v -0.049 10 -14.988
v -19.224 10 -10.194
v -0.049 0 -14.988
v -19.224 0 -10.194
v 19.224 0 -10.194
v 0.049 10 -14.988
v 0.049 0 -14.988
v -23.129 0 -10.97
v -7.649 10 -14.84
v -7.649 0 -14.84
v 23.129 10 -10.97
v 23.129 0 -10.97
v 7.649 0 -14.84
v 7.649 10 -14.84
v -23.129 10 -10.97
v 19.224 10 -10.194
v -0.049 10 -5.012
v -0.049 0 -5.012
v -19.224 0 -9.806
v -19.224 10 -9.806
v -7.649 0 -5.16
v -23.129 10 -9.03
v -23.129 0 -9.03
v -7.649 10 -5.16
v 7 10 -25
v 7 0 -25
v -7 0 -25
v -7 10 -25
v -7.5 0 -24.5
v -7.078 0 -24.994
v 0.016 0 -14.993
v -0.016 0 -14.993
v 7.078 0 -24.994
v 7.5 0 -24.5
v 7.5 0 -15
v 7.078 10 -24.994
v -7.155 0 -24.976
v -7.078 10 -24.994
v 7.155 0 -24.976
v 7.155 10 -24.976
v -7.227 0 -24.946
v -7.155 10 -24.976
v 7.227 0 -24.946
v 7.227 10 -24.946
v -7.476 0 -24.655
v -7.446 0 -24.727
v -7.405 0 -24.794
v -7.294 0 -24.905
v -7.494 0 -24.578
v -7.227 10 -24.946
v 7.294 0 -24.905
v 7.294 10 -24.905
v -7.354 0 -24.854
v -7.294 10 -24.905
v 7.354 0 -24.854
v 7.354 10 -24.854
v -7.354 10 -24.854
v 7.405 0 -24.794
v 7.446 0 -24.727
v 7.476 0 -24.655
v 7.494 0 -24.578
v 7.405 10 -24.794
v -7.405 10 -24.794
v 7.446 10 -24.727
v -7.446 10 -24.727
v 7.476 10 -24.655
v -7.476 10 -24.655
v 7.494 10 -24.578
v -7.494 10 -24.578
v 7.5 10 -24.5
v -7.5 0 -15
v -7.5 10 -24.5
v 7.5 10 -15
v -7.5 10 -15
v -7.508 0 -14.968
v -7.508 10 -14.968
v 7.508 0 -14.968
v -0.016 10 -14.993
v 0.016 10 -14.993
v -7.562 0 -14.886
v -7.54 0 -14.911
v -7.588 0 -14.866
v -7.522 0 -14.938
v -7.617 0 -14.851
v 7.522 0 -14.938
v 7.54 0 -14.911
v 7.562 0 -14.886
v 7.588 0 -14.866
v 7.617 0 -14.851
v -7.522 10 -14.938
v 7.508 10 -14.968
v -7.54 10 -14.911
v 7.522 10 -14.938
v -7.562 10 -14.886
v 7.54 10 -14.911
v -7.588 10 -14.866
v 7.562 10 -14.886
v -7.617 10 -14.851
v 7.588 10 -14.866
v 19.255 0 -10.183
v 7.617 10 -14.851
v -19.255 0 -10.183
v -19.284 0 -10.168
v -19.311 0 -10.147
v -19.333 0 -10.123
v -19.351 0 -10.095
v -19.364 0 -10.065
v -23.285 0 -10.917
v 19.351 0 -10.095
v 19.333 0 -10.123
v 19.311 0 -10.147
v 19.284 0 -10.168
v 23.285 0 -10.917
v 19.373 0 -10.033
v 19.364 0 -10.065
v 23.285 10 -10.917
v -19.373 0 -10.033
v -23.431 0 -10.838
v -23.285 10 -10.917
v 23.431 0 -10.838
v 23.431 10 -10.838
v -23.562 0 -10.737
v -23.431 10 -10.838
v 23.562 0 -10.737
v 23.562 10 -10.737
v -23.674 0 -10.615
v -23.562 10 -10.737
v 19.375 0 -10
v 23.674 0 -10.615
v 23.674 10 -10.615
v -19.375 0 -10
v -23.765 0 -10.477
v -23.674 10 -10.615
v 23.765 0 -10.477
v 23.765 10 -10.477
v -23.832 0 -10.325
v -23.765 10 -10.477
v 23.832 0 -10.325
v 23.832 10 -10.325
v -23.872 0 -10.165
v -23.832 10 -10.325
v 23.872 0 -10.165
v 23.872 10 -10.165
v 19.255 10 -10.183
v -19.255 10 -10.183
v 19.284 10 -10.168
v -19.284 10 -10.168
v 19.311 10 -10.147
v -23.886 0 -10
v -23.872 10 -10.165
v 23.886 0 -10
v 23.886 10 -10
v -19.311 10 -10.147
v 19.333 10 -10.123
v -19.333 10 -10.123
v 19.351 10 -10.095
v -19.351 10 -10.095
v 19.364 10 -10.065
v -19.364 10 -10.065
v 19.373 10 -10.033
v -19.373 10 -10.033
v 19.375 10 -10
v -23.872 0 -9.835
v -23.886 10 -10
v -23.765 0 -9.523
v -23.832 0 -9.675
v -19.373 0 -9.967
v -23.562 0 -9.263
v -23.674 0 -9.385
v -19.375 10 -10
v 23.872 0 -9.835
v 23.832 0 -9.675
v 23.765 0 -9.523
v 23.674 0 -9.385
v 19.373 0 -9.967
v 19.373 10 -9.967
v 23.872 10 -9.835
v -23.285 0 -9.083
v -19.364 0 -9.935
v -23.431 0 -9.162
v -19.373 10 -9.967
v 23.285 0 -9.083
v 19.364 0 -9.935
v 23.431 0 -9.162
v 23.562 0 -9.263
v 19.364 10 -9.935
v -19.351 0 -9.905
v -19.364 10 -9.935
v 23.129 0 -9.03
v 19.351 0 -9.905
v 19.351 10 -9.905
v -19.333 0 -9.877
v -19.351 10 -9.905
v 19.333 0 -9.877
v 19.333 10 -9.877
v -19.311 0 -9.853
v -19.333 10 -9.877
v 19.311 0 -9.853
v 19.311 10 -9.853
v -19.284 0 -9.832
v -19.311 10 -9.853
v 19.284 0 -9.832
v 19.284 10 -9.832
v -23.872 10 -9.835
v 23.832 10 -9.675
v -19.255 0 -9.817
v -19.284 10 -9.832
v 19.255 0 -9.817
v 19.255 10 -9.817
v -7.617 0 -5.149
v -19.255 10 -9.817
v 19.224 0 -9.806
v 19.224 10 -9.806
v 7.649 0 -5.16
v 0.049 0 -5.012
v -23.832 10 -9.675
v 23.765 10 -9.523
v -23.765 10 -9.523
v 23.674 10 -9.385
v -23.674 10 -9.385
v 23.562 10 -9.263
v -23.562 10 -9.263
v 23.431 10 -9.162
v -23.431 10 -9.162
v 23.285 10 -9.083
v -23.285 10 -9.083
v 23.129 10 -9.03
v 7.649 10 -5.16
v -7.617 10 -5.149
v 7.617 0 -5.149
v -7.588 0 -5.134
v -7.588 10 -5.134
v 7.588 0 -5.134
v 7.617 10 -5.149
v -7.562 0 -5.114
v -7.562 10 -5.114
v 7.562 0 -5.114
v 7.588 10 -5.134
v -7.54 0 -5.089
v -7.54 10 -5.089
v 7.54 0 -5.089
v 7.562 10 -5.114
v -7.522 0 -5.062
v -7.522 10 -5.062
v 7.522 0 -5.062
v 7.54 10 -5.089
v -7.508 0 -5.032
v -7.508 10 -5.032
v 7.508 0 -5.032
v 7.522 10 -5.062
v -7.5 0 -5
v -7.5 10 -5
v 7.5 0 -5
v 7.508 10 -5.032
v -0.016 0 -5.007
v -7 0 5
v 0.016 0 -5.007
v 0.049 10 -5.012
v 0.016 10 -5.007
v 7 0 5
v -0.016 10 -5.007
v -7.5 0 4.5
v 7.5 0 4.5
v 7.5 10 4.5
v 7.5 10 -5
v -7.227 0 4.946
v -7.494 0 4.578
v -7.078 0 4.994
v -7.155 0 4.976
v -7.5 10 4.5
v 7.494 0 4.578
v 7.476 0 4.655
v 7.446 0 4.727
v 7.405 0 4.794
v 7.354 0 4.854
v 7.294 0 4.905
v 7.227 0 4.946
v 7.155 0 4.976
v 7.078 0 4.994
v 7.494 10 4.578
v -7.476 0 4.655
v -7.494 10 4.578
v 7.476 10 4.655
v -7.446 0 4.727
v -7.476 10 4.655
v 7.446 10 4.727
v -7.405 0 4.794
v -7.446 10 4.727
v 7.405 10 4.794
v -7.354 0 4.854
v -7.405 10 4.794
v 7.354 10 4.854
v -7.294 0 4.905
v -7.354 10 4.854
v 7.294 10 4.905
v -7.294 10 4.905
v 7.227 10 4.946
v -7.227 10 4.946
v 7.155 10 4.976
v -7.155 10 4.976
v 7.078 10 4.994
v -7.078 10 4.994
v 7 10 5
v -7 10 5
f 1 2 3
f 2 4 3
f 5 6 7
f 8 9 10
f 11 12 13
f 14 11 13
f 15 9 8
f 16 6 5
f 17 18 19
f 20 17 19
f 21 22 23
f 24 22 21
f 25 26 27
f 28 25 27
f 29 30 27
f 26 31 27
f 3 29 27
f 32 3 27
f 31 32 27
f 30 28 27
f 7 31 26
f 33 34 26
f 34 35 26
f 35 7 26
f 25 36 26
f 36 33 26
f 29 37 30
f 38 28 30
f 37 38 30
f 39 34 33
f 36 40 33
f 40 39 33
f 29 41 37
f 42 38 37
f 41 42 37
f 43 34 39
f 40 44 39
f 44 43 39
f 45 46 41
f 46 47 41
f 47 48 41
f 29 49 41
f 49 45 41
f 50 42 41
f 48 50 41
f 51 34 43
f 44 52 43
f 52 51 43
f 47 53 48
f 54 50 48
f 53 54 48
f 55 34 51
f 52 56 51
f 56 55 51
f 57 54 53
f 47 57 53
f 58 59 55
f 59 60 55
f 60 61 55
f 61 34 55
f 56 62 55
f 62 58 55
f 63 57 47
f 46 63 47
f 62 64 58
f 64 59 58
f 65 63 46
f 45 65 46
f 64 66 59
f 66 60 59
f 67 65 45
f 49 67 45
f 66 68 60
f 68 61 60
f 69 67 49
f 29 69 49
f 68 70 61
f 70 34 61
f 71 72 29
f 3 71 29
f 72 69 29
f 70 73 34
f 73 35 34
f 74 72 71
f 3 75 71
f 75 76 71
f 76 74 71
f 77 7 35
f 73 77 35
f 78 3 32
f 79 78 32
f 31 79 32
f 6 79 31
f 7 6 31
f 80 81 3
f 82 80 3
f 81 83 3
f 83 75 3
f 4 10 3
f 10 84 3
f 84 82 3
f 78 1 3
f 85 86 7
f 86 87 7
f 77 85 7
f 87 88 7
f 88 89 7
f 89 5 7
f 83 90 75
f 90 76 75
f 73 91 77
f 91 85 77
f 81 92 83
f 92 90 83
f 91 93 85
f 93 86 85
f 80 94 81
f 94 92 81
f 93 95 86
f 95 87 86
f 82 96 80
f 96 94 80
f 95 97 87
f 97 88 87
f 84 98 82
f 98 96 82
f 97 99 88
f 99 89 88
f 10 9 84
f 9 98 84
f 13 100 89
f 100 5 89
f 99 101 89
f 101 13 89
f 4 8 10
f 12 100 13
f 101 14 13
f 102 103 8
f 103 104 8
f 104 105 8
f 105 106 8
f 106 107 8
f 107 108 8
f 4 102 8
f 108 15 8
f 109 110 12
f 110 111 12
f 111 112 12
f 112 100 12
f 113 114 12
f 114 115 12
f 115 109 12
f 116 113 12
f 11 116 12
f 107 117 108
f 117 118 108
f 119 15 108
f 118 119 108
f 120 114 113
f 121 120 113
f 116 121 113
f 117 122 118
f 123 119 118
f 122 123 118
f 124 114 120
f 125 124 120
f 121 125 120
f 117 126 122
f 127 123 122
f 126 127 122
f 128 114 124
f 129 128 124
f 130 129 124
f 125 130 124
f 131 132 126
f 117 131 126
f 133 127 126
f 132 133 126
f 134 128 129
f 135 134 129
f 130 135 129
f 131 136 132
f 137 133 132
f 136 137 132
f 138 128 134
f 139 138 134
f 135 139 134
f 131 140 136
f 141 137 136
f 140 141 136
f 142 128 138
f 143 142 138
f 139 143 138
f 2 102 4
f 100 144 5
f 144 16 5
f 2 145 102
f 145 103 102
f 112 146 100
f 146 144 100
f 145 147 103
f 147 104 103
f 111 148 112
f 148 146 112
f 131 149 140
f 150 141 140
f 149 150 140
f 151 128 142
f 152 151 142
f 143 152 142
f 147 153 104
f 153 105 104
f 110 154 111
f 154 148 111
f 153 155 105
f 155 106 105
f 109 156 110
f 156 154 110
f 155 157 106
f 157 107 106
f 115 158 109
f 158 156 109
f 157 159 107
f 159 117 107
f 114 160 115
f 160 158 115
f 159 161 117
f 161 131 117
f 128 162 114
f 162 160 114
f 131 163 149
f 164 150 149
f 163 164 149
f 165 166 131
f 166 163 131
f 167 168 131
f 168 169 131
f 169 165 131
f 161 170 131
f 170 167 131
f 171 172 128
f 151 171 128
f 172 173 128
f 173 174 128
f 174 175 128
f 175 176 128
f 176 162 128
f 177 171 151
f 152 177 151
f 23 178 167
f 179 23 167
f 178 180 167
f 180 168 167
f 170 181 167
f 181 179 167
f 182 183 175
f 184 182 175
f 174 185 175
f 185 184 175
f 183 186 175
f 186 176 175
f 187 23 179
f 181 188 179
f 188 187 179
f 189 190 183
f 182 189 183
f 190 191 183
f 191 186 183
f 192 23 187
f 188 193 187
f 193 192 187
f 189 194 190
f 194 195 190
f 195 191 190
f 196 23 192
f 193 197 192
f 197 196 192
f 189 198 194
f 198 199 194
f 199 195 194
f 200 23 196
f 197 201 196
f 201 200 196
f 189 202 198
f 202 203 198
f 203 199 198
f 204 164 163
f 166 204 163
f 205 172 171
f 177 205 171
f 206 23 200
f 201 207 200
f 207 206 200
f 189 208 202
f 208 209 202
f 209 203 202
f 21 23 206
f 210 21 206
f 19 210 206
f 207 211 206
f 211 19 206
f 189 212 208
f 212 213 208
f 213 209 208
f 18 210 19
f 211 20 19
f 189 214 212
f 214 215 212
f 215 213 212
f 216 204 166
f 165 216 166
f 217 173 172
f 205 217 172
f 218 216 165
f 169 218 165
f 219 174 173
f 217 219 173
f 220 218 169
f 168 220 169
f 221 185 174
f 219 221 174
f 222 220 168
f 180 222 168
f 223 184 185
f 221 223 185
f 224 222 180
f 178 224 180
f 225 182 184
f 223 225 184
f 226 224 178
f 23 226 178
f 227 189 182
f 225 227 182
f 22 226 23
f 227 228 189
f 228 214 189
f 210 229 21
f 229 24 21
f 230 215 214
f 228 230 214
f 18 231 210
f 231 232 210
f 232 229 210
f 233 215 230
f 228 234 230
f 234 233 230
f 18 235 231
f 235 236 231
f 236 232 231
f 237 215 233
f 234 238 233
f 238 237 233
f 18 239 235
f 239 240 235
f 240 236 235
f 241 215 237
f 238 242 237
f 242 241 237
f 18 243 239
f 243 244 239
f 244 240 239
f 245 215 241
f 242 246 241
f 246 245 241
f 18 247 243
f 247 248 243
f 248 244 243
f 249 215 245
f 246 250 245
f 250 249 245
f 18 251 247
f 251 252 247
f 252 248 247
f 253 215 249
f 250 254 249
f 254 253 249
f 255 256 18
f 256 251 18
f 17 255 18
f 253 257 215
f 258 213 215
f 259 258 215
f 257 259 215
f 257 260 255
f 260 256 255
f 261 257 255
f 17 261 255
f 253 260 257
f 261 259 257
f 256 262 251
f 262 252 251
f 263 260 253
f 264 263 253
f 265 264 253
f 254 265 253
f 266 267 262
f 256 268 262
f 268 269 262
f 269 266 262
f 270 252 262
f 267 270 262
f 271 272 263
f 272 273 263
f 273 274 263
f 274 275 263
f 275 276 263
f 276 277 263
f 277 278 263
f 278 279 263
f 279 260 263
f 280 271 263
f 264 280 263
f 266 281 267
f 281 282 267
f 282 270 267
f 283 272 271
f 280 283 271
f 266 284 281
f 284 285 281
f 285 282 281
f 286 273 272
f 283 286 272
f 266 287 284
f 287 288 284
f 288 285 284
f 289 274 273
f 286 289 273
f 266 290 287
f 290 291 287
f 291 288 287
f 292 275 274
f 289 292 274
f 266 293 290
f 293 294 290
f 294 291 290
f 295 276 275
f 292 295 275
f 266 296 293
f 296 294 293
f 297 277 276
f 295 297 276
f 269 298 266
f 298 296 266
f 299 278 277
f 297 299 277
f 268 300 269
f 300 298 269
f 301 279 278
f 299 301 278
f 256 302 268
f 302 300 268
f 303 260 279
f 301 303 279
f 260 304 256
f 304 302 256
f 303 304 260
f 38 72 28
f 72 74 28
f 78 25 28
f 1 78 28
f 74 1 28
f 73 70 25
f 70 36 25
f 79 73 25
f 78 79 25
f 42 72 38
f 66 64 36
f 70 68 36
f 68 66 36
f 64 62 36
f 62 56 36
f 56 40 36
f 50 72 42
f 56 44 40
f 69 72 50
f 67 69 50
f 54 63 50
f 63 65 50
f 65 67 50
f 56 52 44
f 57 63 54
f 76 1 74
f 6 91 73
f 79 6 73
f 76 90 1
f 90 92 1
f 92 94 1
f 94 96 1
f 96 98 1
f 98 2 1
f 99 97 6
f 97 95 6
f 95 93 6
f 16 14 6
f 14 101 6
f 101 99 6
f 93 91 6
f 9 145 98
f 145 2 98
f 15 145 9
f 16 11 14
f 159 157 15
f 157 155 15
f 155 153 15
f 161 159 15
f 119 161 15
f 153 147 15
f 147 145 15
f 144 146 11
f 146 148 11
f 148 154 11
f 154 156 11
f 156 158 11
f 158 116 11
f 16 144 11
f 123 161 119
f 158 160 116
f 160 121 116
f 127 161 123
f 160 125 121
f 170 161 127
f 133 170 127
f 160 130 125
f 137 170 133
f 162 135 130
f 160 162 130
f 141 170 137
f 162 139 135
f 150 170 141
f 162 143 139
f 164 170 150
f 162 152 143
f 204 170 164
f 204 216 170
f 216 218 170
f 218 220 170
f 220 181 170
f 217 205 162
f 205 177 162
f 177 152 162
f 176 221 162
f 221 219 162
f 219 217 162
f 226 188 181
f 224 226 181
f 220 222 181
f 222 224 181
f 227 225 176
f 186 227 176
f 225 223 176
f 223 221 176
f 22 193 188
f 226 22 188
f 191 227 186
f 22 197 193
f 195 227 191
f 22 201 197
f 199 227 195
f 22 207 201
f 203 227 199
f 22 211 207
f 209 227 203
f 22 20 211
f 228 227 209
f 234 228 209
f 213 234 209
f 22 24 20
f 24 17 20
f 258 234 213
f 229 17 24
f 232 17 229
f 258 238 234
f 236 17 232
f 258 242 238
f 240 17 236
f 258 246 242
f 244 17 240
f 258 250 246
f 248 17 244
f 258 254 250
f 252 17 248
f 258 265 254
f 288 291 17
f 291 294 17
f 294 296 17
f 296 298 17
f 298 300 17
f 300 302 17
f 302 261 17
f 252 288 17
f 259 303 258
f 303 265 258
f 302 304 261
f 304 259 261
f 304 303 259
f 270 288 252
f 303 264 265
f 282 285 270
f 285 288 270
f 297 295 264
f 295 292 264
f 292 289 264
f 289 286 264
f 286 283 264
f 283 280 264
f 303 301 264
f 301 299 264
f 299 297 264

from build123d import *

# Parameters (mm, degrees)
SKETCH1_W             = 15
SKETCH1_H             = 10
BOSS_EXTRUDE2_DEPTH   = 10
BOSS_EXTRUDE2_2_DEPTH = 10
BOSS_EXTRUDE3_DEPTH   = 10
FILLET1_R             = 0.2
FILLET2_R             = 1
FILLET3_R             = 0.5


with BuildPart() as part:
    # Sketch1 → Boss-Extrude2 (new body)
    with BuildSketch(Plane(origin=(0, 0, 0), x_dir=(1, 0, 0), z_dir=(0, 1, 0))):
        with Locations((0, 20)):
            Rectangle(SKETCH1_W, SKETCH1_H)
    extrude(amount=BOSS_EXTRUDE2_DEPTH)



with BuildPart() as body_2:
    # Sketch1 → Boss-Extrude2 2 (new body)
    with BuildSketch(Plane(origin=(0, 0, 0), x_dir=(1, 0, 0), z_dir=(0, 1, 0))):
        Rectangle(SKETCH1_W, SKETCH1_H)
    extrude(amount=BOSS_EXTRUDE2_2_DEPTH)


with BuildPart() as part_1:
    add(part.part)

    add(body_2.part)  # Boss-Extrude3 merges body 2
    # Sketch1<4> → Boss-Extrude3 (add)
    with BuildSketch(Plane(origin=(0, 0, 0), x_dir=(1, 0, 0), z_dir=(0, 1, 0))):
        Polygon((-20, 10), (0, 15), (-7.009279564, 15), (-27.009279564, 10), (-7.009279564, 5), (0, 5), align=None)
    boss_extrude3 = extrude(amount=BOSS_EXTRUDE3_DEPTH)

    # Mirror1: Boss-Extrude3 across plane
    add(boss_extrude3.mirror(Plane.ZY))

    # Fillet1
    # the kernel refuses this fillet: 0.2 mm, written as the material it adds along each edge
    with BuildSketch(Plane(origin=(7.009279564, 0, -5), x_dir=(1, 0, 0), z_dir=(0, 1, 0)), Plane(origin=(-7.009279564, 0, -15), x_dir=(-1, 0, 0), z_dir=(0, 1, 0))) as fillet1_piece_1:
        with BuildLine():
            CenterArc((0.687772533, -0.034212148), FILLET1_R, 104.036243468, 66.114258118)
            Line((0.639265408, 0.159816352), (0, 0))
            Line((0, 0), (0.490720436, 0))
        make_face()
    extrude(amount=10)
    with BuildSketch(Plane(origin=(7.009279564, 0, -15), x_dir=(1, 0, 0), z_dir=(0, 1, 0)), Plane(origin=(-7.009279564, 0, -5), x_dir=(-1, 0, 0), z_dir=(0, 1, 0))) as fillet1_piece_2:
        with BuildLine():
            CenterArc((0.687772533, 0.034212148), FILLET1_R, 189.849498414, 66.114258118)
            Line((0.639265408, -0.159816352), (0, 0))
            Line((0, 0), (0.490720436, 0))
        make_face()
    extrude(amount=10)
    with BuildSketch(Plane(origin=(0, 0, -5), x_dir=(-0.9701425001453327, 0, -0.24253562503632975), z_dir=(0, 1, 0))) as fillet1_piece_3:
        with BuildLine():
            CenterArc((FILLET1_R * 0.25, -FILLET1_R), FILLET1_R, 90, 28.072486936)
            Line((-FILLET1_R * 0.220588235294, -FILLET1_R * 0.117647058824), (0, 0))
            Line((0, 0), (FILLET1_R * 0.25, 0))
        make_face()
    extrude(amount=10)
    with BuildSketch(Plane(origin=(20, 0, -10), x_dir=(-0.9701425001453313, 0, 0.24253562503633505), z_dir=(0, 1, 0))) as fillet1_piece_4:
        with BuildLine():
            CenterArc((FILLET1_R * 4, -FILLET1_R), FILLET1_R, 90, 151.927513064)
            Line((FILLET1_R * 3.52941176471, -FILLET1_R * 1.88235294118), (0, 0))
            Line((0, 0), (FILLET1_R * 4, 0))
        make_face()
    extrude(amount=10)
    with BuildSketch(Plane(origin=(0, 0, -15), x_dir=(-0.9701425001453277, 0, 0.2425356250363498), z_dir=(0, 1, 0))) as fillet1_piece_5:
        with BuildLine():
            CenterArc((FILLET1_R * 0.25, FILLET1_R), FILLET1_R, 241.927513064, 28.072486936)
            Line((-FILLET1_R * 0.220588235294, FILLET1_R * 0.117647058824), (0, 0))
            Line((0, 0), (FILLET1_R * 0.25, 0))
        make_face()
    extrude(amount=10)
    with BuildSketch(Plane(origin=(-20, 0, -10), x_dir=(0.9701425001453319, 0, 0.24253562503633297), z_dir=(0, 1, 0))) as fillet1_piece_6:
        with BuildLine():
            CenterArc((FILLET1_R * 4, FILLET1_R), FILLET1_R, 118.072486936, 151.927513064)
            Line((FILLET1_R * 3.52941176471, FILLET1_R * 1.88235294118), (0, 0))
            Line((0, 0), (FILLET1_R * 4, 0))
        make_face()
    extrude(amount=10)

    # Fillet2
    fillet2_edges = [part_1.edges().sort_by_distance(p)[0] for p in [
        (-27.009279564, 5, -10),
        (27.009279564, 5, -10),
    ]]
    fillet(fillet2_edges, radius=FILLET2_R)

    # Fillet3
    fillet3_edges = [part_1.edges().sort_by_distance(p)[0] for p in [
        (-7.5, 5, 5),
        (7.5, 5, 5),
        (-7.5, 5, -25),
        (7.5, 5, -25),
    ]]
    fillet(fillet3_edges, radius=FILLET3_R)


solid = part_1.part
